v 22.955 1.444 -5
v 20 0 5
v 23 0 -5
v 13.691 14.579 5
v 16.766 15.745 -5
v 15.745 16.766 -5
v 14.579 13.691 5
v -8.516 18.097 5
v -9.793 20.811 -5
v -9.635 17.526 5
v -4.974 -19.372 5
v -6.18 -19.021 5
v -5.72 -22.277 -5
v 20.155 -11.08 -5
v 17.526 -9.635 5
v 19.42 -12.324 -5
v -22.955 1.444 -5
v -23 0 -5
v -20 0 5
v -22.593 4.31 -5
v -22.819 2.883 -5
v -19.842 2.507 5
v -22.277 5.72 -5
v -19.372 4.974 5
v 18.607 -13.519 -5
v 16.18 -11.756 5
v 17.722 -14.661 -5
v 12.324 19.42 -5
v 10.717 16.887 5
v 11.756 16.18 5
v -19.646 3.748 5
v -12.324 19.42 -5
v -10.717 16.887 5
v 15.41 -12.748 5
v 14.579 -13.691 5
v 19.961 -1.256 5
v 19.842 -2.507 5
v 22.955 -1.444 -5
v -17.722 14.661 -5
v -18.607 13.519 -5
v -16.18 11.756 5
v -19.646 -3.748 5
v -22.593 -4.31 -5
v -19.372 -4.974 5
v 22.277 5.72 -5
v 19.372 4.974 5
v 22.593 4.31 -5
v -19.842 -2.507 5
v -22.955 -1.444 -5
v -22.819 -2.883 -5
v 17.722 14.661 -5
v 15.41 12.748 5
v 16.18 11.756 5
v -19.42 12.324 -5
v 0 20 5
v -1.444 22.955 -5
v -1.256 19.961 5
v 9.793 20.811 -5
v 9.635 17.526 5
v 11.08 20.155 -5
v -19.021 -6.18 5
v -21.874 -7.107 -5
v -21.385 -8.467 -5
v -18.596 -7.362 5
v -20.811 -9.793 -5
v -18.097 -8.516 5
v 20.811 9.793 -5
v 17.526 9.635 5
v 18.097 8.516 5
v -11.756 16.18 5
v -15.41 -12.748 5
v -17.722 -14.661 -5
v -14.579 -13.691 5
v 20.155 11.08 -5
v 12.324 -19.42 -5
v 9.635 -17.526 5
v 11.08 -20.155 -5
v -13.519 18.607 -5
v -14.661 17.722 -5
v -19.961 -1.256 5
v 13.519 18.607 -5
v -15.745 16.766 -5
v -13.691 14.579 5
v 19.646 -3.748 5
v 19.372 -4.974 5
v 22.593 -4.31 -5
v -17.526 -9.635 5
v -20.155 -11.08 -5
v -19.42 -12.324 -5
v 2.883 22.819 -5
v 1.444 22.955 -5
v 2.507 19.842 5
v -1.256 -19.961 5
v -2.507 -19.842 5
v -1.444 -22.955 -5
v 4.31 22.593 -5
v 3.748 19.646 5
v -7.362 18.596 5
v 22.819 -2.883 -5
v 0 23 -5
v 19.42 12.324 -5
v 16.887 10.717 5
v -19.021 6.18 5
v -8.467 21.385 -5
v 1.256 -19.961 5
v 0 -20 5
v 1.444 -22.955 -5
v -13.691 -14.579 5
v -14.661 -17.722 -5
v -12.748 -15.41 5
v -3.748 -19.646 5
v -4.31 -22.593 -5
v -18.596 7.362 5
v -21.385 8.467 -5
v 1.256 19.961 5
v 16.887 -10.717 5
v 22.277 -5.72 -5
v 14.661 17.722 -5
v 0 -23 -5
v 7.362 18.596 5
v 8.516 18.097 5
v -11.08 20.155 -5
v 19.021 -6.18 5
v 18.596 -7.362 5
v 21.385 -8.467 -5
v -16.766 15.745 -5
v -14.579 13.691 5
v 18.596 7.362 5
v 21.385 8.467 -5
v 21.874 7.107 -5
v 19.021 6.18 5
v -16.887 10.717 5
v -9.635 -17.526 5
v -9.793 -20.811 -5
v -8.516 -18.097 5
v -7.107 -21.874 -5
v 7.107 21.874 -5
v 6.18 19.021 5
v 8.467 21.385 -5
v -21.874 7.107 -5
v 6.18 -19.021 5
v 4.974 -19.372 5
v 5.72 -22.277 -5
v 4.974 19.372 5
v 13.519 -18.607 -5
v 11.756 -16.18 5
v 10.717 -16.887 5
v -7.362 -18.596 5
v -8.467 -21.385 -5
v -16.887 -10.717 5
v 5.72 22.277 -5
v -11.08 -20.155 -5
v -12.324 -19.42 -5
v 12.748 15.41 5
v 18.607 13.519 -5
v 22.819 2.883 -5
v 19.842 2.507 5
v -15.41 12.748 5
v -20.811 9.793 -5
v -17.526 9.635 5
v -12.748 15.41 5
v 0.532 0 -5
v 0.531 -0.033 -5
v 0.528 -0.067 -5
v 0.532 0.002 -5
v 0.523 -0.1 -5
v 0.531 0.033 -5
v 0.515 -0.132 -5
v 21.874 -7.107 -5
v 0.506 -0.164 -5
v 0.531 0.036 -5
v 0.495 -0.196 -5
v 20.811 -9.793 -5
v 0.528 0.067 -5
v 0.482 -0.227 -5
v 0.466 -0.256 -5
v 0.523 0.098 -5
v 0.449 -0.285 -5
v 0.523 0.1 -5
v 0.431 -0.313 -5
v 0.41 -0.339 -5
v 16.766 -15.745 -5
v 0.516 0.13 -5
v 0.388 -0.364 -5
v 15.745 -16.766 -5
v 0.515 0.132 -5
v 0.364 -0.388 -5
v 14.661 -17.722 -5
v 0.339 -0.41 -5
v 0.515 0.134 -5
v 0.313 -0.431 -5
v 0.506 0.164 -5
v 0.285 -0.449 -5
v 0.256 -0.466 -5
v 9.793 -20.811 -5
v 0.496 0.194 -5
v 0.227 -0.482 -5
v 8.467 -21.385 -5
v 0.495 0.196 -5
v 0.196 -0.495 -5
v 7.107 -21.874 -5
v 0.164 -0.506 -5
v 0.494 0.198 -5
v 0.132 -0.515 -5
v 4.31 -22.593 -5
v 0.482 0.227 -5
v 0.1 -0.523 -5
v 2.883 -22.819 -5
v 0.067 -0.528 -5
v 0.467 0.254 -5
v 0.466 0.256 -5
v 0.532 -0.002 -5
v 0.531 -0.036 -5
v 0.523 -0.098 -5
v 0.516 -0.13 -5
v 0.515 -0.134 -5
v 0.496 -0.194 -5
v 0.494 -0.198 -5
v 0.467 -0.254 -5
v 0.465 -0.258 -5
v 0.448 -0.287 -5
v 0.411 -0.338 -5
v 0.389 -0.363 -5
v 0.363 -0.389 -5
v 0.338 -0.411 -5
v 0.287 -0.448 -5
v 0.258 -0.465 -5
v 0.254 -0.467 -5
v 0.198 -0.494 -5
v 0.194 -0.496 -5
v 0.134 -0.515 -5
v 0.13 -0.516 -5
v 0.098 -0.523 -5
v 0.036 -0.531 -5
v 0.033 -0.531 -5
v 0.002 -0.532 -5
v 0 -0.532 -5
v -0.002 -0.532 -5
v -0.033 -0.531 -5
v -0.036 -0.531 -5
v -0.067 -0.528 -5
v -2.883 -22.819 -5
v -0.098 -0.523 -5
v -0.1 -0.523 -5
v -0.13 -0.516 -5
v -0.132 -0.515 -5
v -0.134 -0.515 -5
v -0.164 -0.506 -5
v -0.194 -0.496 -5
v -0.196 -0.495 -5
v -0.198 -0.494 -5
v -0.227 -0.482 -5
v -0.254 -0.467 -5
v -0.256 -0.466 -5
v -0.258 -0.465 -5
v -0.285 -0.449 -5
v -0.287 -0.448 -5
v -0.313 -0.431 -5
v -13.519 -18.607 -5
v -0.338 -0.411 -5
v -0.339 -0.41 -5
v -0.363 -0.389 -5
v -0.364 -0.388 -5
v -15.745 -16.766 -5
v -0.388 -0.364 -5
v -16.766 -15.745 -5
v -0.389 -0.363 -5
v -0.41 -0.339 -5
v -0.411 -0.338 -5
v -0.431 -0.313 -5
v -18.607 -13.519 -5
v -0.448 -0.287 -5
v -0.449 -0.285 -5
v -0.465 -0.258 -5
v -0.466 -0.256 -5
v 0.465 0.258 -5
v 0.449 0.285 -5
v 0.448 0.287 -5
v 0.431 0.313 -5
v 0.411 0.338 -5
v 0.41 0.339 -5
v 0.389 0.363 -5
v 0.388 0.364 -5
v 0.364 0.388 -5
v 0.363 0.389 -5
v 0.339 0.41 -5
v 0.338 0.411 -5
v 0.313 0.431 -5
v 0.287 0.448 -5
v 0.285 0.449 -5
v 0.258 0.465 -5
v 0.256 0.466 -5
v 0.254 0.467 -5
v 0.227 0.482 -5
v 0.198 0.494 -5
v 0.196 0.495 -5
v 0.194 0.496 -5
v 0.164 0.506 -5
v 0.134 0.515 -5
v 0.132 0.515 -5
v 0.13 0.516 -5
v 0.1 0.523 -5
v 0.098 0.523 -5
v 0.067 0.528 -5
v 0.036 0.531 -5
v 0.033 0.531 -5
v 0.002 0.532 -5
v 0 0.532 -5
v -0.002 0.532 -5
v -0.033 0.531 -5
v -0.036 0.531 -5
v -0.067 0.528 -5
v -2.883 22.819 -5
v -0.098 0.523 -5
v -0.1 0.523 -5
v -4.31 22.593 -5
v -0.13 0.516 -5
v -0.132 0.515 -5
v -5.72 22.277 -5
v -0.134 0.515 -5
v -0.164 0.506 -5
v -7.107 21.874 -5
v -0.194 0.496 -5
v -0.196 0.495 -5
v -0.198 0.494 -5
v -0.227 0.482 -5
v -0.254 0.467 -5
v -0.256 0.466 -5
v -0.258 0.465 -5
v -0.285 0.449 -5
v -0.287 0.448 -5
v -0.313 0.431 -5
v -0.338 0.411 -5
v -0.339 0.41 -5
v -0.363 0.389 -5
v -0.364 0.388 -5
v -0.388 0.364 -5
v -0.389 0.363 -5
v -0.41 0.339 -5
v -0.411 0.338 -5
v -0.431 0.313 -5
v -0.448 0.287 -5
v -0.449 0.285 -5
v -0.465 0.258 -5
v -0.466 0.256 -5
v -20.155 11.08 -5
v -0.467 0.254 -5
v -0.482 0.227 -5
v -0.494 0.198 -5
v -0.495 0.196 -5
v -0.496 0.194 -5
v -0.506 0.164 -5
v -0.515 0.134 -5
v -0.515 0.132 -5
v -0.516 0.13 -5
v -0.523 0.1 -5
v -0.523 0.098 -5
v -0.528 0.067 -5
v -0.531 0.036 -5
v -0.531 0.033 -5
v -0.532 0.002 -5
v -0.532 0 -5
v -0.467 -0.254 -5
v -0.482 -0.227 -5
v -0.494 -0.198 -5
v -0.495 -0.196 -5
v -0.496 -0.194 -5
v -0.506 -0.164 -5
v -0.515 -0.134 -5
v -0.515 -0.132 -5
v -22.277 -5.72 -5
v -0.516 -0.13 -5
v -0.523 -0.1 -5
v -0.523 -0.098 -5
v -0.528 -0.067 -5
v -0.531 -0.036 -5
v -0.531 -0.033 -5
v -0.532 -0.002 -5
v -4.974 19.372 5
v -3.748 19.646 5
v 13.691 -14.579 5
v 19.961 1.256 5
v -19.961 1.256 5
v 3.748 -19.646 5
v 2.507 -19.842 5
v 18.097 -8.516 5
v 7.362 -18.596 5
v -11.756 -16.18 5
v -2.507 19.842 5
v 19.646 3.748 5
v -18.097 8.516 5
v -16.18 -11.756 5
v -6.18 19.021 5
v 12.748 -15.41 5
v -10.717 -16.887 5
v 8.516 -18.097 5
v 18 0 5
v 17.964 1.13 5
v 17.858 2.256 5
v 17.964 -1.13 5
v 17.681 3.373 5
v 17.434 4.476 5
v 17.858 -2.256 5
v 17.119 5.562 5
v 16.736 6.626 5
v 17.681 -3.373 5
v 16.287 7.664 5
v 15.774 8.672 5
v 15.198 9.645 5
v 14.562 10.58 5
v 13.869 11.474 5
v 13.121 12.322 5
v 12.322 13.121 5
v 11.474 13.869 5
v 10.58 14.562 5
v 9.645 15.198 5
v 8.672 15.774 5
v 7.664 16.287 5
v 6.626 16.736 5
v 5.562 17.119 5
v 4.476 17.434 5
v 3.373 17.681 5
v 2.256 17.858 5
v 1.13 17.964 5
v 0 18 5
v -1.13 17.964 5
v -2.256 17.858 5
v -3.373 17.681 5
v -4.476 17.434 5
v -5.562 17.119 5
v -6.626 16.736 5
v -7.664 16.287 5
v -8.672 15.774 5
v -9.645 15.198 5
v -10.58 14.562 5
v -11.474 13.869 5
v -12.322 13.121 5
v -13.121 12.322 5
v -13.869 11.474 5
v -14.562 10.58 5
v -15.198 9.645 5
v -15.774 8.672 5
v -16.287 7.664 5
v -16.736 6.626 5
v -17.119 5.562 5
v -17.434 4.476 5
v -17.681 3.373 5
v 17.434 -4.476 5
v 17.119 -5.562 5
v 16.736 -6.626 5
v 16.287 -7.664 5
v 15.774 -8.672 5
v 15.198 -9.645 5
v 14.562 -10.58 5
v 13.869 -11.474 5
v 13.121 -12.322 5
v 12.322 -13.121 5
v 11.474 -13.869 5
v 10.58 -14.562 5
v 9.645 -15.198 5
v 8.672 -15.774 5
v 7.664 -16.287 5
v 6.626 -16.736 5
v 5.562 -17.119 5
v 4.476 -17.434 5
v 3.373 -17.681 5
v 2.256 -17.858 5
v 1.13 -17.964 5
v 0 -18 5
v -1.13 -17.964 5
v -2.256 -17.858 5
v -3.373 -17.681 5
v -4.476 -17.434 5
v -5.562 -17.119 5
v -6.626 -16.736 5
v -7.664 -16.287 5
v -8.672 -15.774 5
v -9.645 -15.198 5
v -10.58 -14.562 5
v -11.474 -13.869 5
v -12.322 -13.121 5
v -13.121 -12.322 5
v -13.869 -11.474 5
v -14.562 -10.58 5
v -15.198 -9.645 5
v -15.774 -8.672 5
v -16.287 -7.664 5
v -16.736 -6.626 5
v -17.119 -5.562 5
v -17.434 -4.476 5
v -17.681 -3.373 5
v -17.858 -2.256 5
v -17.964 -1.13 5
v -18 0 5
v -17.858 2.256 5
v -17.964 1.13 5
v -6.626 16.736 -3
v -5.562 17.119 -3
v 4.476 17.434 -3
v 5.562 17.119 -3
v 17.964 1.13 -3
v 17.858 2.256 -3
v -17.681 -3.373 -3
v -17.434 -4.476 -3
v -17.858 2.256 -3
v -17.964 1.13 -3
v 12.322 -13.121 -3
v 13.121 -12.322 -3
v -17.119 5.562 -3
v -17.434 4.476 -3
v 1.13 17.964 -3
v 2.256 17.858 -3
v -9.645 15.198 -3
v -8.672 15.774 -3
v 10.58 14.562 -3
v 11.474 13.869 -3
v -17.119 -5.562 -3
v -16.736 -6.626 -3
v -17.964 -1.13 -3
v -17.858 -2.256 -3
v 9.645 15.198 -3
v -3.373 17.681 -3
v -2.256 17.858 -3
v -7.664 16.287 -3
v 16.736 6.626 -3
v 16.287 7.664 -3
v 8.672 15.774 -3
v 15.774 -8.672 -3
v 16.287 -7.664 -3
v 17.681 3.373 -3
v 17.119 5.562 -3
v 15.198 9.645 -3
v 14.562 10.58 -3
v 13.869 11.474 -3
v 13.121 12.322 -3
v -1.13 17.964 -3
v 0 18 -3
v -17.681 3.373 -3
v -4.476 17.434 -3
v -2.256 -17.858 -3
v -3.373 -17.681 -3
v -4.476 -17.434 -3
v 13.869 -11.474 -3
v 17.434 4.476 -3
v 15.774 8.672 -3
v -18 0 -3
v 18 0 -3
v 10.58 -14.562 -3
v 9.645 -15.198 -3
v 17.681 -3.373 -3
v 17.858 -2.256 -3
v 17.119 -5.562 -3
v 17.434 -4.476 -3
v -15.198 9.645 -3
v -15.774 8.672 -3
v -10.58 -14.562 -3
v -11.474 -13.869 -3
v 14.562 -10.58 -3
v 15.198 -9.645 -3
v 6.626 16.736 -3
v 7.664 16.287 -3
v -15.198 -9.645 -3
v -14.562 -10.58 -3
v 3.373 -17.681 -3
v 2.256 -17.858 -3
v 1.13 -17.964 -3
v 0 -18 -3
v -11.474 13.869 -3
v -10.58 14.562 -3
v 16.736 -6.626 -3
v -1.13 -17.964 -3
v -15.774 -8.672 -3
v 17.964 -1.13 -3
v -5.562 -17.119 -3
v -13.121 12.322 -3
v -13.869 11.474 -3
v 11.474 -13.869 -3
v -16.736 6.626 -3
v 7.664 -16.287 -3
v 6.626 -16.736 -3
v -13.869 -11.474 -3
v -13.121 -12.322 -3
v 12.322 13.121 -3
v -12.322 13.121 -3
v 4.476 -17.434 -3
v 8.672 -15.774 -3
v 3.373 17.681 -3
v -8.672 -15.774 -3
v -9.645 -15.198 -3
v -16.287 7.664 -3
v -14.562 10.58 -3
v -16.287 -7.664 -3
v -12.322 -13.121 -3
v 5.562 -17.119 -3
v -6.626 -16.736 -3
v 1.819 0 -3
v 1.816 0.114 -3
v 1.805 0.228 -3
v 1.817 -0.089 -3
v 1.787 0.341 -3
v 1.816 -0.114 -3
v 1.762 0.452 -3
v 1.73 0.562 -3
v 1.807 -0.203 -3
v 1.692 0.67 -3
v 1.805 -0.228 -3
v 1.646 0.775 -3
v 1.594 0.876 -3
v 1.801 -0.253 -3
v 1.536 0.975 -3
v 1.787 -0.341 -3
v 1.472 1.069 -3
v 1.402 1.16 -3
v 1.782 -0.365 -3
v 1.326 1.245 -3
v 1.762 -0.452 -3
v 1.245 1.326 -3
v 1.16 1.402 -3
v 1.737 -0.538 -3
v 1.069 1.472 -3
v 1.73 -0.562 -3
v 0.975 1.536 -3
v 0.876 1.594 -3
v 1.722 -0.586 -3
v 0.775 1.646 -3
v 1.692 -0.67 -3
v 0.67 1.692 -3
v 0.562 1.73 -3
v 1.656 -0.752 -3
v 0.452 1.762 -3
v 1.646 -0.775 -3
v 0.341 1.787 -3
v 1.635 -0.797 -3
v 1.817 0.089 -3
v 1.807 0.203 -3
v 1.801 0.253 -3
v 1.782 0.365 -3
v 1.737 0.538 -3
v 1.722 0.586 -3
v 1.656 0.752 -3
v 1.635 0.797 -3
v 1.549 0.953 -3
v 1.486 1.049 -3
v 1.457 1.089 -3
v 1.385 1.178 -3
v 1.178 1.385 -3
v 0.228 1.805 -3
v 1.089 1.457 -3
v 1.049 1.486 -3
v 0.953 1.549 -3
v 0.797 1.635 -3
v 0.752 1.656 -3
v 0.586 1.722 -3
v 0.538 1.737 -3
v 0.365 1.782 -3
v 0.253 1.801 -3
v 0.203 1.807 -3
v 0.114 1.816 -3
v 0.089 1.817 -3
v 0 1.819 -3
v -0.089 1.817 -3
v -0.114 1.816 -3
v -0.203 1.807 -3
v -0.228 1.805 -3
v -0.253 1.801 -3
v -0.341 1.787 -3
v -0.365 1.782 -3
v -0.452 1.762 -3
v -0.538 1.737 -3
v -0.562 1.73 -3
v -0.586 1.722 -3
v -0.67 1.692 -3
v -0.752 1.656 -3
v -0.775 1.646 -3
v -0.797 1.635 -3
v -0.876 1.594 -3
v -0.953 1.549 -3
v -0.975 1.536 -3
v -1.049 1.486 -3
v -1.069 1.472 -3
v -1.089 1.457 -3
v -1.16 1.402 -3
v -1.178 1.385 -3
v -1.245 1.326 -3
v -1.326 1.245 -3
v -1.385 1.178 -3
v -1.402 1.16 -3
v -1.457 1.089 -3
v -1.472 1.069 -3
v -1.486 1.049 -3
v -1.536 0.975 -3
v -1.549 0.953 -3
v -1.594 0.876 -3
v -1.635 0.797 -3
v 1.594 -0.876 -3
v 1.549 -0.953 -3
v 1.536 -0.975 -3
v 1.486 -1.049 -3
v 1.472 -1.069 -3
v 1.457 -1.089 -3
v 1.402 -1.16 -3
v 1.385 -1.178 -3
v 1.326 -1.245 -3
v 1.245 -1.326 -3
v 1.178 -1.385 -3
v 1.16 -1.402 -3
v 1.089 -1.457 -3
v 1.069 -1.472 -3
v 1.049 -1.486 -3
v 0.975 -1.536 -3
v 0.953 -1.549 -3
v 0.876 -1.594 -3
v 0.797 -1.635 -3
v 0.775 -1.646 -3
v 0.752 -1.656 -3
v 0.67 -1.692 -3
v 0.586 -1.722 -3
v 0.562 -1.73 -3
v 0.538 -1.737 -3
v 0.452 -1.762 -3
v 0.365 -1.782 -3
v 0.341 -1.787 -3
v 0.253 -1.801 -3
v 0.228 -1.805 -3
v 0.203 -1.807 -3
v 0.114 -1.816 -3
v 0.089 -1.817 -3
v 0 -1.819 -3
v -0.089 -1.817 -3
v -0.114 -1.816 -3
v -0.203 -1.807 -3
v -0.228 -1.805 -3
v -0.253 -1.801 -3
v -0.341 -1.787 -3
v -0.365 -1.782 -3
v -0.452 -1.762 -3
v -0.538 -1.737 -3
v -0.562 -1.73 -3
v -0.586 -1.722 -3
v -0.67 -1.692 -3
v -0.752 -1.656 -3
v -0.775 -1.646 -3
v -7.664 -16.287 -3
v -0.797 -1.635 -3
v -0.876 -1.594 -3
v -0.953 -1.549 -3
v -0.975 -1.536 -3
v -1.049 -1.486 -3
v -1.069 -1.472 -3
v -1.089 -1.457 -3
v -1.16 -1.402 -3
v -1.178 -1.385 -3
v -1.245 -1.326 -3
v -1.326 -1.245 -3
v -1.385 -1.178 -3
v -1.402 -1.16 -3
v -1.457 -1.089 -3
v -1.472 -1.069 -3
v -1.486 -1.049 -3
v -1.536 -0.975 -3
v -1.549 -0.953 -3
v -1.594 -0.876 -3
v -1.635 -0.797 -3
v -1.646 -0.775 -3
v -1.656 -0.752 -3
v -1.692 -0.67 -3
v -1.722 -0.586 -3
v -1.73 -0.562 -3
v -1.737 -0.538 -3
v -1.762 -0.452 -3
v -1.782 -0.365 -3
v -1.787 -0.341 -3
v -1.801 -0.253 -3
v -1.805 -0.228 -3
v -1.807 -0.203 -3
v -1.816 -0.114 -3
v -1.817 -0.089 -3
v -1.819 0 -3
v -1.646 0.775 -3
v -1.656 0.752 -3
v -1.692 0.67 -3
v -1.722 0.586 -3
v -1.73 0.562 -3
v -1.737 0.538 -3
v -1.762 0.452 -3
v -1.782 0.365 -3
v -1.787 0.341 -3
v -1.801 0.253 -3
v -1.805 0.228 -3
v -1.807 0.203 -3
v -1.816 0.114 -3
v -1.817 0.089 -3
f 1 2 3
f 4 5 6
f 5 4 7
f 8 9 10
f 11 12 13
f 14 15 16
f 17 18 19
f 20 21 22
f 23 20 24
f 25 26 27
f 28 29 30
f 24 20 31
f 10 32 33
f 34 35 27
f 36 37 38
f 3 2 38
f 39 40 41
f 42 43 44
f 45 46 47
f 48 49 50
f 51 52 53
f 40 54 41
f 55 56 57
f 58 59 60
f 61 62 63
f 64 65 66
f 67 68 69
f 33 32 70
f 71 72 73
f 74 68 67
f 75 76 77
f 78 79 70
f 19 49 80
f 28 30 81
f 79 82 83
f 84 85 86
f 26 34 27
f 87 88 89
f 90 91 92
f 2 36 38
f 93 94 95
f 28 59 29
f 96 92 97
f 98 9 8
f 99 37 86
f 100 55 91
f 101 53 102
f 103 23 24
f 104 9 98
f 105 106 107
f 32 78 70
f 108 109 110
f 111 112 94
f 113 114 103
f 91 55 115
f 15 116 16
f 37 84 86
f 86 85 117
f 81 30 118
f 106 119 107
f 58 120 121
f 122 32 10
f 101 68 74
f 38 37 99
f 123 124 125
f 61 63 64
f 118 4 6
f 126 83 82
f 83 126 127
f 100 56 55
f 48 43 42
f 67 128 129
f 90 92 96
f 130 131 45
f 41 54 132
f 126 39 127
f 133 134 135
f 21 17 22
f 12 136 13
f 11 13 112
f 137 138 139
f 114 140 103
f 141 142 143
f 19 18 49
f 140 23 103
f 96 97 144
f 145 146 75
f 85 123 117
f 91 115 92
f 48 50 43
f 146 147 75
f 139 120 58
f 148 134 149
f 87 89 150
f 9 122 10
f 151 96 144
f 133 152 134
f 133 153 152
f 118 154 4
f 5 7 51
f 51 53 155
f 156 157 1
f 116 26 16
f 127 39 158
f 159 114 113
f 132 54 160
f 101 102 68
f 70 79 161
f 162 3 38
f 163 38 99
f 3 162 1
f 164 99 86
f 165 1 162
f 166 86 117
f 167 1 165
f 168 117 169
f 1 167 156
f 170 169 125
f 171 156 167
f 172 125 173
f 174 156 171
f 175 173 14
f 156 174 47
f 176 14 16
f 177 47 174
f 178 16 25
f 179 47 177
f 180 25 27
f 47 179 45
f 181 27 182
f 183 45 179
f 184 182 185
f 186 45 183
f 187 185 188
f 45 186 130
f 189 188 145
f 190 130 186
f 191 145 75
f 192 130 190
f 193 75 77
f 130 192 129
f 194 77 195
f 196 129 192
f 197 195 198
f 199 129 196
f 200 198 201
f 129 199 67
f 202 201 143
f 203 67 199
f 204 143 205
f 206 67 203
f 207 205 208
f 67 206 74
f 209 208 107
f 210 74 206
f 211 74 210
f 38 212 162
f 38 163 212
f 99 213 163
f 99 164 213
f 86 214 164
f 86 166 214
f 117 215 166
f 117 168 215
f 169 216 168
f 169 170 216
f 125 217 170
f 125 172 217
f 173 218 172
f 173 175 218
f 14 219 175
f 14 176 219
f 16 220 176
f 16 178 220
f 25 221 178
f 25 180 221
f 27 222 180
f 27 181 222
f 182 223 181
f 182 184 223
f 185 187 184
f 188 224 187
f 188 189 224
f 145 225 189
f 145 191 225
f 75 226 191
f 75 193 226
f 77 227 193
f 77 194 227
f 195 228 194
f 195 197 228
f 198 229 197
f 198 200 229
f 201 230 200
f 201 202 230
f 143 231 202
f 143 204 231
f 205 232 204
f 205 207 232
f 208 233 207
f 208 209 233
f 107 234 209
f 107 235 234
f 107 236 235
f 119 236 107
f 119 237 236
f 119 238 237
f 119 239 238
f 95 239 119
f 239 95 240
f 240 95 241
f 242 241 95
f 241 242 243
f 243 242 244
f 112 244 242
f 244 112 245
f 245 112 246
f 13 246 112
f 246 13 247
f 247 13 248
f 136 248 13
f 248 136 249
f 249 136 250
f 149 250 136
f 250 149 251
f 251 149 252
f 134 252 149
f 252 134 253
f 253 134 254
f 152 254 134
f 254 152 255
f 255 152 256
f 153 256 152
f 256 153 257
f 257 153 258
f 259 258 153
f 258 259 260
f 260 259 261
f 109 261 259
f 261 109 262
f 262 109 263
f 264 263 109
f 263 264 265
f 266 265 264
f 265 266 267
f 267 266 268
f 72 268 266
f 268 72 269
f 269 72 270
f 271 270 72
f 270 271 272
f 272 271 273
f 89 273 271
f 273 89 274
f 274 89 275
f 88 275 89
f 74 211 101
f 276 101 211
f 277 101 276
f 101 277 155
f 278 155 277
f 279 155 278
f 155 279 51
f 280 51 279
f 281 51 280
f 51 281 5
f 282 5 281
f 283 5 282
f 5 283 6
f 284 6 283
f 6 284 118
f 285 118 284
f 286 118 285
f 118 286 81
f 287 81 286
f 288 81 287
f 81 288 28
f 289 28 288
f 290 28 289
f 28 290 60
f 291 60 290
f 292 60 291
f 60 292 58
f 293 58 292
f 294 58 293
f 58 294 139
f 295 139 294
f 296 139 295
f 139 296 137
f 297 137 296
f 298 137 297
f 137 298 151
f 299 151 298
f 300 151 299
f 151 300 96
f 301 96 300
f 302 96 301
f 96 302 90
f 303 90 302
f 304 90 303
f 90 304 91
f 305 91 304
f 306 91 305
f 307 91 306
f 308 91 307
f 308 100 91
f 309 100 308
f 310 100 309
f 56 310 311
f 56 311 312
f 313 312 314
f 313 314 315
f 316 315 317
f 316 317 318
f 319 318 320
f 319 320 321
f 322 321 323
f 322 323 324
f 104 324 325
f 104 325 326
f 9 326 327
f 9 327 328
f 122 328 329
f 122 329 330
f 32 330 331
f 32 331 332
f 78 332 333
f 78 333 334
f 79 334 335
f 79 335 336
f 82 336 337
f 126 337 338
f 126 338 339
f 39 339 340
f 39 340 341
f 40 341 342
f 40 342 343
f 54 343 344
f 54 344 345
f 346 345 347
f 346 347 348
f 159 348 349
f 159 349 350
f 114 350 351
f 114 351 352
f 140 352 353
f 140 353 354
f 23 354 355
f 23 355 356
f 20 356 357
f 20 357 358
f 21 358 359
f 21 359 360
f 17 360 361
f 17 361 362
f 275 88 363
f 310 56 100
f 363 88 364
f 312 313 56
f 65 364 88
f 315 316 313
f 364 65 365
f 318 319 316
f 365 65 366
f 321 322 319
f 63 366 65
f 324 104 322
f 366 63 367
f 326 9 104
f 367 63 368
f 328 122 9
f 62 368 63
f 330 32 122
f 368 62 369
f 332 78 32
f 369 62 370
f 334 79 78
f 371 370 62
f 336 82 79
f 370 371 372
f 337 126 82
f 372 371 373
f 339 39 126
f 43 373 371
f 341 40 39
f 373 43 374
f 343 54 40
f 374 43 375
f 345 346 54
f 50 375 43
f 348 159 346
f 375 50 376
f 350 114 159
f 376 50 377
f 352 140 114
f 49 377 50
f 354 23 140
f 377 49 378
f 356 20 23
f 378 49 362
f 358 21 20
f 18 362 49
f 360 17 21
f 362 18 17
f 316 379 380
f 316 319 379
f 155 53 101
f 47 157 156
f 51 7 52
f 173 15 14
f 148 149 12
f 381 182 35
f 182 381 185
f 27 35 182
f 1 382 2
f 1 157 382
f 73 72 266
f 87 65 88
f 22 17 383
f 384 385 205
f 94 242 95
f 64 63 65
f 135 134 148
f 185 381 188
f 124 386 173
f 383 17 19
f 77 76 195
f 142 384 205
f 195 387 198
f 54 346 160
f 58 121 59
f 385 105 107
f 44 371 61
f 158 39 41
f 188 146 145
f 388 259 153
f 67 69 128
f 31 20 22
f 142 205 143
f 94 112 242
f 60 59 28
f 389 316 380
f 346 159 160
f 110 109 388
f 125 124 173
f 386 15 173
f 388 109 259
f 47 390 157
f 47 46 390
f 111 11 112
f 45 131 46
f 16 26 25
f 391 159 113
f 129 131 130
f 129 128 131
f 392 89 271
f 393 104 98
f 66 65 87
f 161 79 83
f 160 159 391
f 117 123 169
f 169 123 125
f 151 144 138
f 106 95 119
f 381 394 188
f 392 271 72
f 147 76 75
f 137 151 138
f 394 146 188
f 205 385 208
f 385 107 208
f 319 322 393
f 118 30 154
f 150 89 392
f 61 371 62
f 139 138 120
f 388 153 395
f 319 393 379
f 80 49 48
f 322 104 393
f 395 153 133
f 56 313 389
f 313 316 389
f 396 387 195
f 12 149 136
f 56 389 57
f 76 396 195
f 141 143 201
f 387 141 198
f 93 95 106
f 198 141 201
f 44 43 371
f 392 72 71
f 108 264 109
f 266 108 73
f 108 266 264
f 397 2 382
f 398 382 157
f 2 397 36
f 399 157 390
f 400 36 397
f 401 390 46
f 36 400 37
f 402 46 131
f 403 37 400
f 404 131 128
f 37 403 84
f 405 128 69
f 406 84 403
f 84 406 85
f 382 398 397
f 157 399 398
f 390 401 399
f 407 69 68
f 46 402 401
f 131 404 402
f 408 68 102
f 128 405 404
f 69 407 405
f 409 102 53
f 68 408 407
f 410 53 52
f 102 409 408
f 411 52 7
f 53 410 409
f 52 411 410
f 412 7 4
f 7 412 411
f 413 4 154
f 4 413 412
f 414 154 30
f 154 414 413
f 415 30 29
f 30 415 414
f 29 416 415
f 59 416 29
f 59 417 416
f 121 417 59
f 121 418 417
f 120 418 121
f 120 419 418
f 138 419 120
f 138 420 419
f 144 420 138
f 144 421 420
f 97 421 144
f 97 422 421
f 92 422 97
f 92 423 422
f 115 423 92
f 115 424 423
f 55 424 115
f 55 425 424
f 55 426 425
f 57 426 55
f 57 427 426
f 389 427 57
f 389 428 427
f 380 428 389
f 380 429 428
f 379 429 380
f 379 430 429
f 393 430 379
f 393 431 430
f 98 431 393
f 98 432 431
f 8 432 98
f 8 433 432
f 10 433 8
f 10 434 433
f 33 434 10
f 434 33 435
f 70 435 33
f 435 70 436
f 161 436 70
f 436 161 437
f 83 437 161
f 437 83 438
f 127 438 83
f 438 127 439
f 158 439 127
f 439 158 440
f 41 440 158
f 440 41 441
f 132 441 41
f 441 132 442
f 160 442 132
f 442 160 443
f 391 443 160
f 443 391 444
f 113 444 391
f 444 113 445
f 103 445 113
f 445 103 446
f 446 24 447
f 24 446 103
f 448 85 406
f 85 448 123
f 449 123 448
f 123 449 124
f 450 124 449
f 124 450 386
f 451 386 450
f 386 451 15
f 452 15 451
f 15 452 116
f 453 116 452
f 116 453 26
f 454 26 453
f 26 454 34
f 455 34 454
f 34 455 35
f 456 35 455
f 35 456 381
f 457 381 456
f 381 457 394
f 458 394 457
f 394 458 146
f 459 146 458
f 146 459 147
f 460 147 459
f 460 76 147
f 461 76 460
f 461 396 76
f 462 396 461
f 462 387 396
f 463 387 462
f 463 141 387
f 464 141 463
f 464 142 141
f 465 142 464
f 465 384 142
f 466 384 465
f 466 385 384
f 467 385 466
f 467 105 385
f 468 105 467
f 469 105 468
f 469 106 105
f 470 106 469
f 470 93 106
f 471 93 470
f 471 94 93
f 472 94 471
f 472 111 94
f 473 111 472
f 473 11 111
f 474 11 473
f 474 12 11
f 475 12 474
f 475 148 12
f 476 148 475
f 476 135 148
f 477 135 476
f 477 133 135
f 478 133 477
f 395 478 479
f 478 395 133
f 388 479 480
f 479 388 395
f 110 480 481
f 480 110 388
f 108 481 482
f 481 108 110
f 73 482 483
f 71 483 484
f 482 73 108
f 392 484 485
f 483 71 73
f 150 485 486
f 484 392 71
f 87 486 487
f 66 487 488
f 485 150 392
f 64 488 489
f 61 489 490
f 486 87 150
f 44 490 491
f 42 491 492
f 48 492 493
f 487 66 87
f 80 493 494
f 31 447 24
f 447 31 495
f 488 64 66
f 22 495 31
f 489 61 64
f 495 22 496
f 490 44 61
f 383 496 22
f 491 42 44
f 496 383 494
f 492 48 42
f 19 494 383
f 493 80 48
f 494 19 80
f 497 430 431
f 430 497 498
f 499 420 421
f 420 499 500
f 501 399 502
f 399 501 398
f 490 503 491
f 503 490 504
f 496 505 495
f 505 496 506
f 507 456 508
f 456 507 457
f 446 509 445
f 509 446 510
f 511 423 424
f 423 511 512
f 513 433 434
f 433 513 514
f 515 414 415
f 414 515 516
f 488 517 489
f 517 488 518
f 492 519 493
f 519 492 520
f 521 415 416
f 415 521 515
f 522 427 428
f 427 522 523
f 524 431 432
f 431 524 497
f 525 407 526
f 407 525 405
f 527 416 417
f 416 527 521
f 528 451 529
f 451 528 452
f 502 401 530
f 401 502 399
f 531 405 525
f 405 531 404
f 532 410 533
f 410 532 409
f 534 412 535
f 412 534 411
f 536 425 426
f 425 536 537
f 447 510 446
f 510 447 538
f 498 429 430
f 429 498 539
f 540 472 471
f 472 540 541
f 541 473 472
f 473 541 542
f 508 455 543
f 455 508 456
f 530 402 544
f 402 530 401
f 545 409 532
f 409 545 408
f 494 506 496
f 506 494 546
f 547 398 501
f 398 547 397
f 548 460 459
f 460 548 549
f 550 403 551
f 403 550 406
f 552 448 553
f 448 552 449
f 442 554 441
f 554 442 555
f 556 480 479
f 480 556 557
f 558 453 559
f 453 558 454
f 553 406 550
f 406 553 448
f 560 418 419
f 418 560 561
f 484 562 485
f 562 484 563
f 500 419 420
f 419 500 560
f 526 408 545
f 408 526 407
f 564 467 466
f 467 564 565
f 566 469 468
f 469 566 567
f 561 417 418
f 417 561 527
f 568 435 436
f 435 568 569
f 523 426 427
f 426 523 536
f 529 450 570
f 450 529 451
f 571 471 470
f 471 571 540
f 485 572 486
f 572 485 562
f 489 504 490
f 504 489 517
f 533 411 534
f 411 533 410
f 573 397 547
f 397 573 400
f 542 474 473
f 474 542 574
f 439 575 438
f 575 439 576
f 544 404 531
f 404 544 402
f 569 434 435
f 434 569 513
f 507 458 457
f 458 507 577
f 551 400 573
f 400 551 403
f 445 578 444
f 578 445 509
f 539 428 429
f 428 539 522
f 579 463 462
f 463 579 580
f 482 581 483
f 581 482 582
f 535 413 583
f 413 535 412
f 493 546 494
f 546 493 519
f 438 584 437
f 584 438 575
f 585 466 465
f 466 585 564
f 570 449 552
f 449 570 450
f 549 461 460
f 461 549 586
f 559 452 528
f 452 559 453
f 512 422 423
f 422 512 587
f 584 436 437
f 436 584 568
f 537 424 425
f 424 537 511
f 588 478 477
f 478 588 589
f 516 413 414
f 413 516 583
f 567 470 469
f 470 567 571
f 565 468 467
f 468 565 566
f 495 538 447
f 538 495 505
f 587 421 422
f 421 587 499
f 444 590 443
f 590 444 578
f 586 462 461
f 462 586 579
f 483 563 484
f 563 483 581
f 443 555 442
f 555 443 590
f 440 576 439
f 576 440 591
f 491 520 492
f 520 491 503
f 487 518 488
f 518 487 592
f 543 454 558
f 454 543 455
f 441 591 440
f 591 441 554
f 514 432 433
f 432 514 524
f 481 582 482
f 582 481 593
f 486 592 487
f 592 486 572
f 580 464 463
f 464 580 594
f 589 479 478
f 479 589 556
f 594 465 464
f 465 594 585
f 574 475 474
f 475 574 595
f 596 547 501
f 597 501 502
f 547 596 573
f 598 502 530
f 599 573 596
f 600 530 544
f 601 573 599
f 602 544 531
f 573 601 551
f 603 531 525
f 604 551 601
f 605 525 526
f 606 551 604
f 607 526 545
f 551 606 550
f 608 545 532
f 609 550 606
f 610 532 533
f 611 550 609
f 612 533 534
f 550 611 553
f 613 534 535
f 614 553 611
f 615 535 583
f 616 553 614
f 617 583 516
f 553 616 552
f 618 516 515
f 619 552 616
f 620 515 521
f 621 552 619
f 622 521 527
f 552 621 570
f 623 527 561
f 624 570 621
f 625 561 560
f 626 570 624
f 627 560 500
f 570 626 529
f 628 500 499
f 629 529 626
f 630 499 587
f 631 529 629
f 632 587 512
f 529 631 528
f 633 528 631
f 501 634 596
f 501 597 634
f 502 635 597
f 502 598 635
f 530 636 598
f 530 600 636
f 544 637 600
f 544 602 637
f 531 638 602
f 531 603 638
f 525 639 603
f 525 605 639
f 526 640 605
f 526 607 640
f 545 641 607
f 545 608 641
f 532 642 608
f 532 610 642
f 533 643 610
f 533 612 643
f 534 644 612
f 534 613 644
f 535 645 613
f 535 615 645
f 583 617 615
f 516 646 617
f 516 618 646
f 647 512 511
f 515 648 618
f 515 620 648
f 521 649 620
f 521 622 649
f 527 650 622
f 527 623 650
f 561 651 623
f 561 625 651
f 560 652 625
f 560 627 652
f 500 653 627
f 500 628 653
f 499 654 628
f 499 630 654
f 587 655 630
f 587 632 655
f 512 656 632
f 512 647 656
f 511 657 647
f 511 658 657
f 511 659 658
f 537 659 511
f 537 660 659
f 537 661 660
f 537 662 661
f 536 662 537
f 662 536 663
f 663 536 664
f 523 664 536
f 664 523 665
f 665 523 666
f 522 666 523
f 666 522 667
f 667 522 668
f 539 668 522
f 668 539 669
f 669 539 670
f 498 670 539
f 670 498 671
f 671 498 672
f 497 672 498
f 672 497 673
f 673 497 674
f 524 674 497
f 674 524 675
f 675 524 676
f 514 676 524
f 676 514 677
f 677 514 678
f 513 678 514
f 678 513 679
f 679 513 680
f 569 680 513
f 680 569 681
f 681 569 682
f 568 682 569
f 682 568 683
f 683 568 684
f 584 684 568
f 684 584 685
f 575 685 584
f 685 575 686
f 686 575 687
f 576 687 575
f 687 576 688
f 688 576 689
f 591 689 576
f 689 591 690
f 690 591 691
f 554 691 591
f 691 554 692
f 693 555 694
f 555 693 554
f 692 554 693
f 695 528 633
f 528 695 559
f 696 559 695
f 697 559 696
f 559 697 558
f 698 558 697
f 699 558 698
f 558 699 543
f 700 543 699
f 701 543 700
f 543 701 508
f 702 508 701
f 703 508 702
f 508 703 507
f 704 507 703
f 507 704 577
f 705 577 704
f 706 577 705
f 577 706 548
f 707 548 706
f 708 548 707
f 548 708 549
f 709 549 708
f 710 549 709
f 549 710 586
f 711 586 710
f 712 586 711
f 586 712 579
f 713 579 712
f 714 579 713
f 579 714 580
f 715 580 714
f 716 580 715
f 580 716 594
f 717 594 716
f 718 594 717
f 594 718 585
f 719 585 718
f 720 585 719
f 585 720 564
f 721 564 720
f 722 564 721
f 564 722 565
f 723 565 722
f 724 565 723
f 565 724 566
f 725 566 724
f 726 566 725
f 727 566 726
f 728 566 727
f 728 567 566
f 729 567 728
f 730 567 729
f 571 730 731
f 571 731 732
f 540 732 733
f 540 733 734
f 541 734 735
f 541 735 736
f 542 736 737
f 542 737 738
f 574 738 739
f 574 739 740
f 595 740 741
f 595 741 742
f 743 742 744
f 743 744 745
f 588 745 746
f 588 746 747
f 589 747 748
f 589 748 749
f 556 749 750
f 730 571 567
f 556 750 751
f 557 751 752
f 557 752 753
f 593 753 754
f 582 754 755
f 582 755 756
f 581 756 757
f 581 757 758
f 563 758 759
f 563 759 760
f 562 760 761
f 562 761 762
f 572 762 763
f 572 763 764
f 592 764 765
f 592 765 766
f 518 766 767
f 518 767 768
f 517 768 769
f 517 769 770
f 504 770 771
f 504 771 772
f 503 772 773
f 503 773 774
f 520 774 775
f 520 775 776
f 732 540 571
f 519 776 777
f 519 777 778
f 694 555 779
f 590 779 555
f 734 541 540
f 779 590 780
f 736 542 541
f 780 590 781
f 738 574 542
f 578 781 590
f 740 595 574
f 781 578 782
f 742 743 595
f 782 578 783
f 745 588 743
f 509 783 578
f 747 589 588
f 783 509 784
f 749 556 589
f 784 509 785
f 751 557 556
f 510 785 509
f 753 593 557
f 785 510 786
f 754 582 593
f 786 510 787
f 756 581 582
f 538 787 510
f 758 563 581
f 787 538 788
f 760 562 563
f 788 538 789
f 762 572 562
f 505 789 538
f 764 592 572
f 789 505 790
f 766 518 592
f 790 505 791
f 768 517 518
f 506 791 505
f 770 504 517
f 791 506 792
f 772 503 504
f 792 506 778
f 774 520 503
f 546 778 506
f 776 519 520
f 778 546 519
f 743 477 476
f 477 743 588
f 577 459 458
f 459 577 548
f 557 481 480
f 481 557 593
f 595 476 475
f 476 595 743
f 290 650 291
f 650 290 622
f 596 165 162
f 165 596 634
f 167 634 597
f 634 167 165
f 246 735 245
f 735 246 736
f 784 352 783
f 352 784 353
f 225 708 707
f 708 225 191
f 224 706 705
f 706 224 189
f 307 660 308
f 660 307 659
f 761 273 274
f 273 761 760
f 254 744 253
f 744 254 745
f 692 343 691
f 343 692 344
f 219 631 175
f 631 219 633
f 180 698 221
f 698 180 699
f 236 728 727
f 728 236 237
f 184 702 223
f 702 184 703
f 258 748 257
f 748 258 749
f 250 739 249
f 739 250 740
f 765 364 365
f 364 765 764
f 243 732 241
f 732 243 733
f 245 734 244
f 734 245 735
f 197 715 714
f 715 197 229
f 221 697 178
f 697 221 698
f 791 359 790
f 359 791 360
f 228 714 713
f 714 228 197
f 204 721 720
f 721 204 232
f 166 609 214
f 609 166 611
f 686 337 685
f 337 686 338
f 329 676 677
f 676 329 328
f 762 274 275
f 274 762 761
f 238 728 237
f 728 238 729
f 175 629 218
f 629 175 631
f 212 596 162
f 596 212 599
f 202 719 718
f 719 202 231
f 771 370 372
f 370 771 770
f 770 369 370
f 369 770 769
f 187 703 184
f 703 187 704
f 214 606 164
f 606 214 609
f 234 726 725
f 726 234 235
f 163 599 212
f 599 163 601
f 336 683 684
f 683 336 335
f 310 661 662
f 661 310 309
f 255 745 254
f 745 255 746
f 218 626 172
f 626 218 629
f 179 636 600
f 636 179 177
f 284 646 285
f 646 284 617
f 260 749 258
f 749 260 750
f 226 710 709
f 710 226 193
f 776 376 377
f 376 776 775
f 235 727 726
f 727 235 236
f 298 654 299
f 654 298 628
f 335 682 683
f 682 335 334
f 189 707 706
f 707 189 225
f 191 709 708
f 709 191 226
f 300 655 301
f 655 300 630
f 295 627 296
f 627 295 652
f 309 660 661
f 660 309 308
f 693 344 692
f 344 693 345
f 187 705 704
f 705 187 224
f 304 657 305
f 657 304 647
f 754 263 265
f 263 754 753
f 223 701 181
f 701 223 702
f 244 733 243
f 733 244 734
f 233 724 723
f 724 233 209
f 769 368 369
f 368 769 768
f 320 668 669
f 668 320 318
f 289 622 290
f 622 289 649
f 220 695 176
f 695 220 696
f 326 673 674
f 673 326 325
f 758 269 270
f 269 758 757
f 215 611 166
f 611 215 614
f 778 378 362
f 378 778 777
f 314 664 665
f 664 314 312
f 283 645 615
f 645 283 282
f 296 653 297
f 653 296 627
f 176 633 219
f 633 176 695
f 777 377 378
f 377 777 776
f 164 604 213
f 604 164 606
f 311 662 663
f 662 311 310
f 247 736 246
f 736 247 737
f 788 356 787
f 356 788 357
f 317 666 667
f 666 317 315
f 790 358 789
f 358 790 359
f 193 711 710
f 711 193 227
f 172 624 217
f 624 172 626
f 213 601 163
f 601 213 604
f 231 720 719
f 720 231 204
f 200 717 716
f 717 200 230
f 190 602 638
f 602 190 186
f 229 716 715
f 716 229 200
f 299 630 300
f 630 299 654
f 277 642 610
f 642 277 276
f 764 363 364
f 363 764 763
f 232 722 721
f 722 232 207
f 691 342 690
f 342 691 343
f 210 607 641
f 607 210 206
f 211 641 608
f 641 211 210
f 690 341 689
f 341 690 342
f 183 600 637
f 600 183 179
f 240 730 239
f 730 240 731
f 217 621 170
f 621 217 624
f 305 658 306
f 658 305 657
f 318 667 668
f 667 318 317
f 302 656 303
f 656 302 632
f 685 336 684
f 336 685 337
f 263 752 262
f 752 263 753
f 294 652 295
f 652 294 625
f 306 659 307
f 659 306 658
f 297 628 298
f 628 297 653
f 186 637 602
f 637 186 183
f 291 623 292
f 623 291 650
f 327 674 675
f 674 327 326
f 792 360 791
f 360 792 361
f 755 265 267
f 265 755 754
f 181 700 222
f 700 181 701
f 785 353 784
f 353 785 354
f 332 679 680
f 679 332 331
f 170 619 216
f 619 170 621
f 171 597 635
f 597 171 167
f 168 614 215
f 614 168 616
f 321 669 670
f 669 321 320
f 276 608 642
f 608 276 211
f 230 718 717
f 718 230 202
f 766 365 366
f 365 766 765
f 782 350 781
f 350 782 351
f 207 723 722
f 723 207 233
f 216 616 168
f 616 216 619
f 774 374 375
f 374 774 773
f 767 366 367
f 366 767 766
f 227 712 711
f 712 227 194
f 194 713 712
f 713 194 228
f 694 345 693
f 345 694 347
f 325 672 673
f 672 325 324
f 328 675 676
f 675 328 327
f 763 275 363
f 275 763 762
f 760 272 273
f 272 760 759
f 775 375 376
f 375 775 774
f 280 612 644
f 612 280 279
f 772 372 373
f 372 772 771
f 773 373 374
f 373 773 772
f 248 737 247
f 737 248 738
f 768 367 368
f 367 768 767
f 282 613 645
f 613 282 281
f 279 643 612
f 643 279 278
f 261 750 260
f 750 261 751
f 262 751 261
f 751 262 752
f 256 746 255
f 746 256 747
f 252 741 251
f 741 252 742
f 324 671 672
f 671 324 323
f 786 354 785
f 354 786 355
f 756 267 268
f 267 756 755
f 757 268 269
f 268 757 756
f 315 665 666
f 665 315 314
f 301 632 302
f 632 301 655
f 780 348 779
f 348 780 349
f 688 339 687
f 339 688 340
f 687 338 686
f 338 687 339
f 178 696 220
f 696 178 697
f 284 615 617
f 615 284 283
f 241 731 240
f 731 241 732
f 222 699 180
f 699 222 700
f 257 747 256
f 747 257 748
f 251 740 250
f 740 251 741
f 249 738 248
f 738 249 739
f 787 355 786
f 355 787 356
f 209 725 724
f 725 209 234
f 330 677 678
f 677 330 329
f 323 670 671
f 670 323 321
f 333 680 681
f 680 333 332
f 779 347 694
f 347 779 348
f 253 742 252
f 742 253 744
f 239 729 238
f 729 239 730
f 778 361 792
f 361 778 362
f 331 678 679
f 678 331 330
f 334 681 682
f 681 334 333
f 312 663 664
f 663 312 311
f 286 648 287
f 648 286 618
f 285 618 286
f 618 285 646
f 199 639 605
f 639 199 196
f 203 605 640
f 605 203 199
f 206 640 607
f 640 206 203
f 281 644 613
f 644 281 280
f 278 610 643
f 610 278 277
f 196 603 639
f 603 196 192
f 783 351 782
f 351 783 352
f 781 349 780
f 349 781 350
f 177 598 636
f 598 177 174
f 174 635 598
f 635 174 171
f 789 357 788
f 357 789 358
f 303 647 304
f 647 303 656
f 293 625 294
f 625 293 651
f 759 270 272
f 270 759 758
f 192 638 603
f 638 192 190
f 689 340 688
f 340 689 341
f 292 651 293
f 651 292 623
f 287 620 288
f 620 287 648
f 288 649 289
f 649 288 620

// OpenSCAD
difference() {
    cylinder(10, 23, 20, $fn=100, center = true);
    {
        translate([0, 0, 2] ) {
            cylinder(10, 18, 18, $fn=100, center = true);
        }
        cylinder(10.1, .5, 7, $fn=100, center = true);
    }
};
